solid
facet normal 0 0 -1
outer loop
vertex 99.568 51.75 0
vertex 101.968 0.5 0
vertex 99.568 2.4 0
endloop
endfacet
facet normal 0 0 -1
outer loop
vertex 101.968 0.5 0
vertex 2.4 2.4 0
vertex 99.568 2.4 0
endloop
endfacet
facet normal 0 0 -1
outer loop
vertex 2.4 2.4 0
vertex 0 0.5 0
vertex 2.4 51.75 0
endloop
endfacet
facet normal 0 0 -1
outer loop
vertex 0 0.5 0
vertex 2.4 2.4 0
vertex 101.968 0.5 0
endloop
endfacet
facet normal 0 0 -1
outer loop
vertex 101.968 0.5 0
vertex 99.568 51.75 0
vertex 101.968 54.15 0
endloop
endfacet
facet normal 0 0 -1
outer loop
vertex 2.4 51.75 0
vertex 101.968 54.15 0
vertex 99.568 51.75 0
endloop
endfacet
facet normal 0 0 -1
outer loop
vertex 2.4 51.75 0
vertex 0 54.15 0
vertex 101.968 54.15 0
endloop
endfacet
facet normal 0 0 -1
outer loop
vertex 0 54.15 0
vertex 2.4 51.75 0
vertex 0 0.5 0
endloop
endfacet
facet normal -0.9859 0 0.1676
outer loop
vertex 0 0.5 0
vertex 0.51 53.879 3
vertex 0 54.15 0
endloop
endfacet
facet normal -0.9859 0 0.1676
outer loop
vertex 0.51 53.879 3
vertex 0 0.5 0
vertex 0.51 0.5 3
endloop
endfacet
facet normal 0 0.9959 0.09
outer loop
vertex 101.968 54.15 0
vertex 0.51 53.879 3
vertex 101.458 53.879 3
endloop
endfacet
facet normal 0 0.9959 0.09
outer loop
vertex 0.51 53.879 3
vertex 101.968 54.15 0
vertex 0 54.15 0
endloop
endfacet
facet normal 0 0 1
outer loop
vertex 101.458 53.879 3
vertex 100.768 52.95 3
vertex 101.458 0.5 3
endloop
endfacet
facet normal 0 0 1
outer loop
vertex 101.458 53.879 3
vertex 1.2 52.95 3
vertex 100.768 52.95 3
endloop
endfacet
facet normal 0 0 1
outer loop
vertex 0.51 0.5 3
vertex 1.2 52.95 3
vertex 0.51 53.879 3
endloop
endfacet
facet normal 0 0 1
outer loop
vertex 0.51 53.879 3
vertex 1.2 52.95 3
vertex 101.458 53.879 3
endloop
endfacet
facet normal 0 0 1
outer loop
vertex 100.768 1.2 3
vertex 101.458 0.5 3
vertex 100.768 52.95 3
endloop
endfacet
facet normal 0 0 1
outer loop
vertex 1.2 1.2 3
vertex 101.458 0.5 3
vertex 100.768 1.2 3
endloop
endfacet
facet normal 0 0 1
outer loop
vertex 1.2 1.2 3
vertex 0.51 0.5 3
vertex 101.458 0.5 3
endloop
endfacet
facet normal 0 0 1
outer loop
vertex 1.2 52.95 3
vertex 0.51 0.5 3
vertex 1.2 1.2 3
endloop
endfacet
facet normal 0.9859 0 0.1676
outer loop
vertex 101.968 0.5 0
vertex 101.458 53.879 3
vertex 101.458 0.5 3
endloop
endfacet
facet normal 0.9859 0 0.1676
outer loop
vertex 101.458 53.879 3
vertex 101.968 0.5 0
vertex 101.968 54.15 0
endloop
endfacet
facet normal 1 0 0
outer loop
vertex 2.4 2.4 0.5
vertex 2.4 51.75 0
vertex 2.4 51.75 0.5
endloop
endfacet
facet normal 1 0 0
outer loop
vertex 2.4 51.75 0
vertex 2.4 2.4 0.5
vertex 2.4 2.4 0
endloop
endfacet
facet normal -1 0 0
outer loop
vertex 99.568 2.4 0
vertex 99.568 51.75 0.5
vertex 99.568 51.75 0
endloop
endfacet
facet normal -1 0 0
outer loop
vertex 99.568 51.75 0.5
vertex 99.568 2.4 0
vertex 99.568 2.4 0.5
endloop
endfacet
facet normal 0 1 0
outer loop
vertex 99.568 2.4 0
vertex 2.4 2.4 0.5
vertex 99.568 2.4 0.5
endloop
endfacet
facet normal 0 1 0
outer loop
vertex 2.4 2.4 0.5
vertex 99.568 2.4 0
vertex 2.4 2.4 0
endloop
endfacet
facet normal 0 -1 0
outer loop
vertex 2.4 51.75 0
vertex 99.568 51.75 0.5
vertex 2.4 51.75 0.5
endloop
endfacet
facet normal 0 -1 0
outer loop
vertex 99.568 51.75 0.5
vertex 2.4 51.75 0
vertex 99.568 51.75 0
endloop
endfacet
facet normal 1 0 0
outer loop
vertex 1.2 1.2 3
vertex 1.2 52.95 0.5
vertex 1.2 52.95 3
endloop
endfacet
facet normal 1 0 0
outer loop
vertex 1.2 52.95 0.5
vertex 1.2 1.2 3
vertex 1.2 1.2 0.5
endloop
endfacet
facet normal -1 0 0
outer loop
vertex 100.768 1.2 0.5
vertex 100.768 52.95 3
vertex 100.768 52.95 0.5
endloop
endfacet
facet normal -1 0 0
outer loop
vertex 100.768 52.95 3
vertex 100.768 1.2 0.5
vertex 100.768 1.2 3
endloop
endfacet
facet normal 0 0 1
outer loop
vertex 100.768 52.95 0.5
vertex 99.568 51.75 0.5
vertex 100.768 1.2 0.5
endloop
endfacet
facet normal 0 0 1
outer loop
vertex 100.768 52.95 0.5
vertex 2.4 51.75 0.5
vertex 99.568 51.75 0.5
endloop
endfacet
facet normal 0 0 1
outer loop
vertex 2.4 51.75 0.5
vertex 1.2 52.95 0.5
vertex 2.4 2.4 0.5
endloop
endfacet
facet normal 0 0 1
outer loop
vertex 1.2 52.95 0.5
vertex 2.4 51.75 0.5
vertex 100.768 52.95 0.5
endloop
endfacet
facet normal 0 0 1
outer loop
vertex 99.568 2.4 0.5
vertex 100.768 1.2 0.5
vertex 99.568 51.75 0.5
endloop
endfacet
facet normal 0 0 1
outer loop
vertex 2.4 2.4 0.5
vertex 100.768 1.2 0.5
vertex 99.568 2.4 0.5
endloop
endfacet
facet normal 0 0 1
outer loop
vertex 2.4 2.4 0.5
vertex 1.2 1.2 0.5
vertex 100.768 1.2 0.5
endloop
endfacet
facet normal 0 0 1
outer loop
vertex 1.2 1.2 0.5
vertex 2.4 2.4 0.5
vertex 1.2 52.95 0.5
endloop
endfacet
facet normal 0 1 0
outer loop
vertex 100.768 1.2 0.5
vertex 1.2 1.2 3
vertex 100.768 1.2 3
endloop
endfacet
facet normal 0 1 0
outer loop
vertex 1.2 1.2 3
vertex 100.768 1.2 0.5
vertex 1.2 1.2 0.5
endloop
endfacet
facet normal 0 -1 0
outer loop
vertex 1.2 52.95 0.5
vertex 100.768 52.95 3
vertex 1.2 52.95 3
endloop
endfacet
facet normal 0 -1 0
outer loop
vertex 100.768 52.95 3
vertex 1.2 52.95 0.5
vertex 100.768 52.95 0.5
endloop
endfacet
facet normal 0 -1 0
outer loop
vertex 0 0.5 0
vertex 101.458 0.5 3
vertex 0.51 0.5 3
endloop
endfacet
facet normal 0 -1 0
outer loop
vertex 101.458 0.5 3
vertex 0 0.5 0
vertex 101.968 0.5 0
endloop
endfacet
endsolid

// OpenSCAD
// microKitKeyboardOverlayFrame2

keyDistX = 12.065; // 4.8 * inch;
keyDistY = 8.890; // 3.5 * inch;
keyTopHeight = 5.0 + 0.3;
panelThick = 3.0;
panelWidth = 99.568; //keyDistX * 8 + keyTopWidth + 2.0;
panelHeight = keyDistY * 5 + keyTopHeight + 2.0;

frameRim = 1.2;

frameTopHeight = 0.5;
frameWidth  = panelWidth + frameRim * 2;
frameHeight = panelHeight + frameRim * 2;
frameDepth = 3.0;

difference() {
    taperFrame(frameWidth, frameHeight, frameDepth, 0.99);
    translate([frameRim * 2, frameRim * 2, -0.01])
        cube([panelWidth - frameRim * 2, panelHeight - frameRim * 2, panelThick]);
    translate([frameRim, frameRim, frameTopHeight])
        cube([panelWidth, panelHeight, panelThick]);
    translate([0,0,-0.01]) cube([frameWidth, 0.5, frameDepth + 0.1]);
}

module taperFrame(width, height, thickness, tapering) {
    translate([width / 2, height / 2, 0]) {
      linear_extrude(height = thickness, scale = tapering) 
        square([width, height], center = true);
    }
}
